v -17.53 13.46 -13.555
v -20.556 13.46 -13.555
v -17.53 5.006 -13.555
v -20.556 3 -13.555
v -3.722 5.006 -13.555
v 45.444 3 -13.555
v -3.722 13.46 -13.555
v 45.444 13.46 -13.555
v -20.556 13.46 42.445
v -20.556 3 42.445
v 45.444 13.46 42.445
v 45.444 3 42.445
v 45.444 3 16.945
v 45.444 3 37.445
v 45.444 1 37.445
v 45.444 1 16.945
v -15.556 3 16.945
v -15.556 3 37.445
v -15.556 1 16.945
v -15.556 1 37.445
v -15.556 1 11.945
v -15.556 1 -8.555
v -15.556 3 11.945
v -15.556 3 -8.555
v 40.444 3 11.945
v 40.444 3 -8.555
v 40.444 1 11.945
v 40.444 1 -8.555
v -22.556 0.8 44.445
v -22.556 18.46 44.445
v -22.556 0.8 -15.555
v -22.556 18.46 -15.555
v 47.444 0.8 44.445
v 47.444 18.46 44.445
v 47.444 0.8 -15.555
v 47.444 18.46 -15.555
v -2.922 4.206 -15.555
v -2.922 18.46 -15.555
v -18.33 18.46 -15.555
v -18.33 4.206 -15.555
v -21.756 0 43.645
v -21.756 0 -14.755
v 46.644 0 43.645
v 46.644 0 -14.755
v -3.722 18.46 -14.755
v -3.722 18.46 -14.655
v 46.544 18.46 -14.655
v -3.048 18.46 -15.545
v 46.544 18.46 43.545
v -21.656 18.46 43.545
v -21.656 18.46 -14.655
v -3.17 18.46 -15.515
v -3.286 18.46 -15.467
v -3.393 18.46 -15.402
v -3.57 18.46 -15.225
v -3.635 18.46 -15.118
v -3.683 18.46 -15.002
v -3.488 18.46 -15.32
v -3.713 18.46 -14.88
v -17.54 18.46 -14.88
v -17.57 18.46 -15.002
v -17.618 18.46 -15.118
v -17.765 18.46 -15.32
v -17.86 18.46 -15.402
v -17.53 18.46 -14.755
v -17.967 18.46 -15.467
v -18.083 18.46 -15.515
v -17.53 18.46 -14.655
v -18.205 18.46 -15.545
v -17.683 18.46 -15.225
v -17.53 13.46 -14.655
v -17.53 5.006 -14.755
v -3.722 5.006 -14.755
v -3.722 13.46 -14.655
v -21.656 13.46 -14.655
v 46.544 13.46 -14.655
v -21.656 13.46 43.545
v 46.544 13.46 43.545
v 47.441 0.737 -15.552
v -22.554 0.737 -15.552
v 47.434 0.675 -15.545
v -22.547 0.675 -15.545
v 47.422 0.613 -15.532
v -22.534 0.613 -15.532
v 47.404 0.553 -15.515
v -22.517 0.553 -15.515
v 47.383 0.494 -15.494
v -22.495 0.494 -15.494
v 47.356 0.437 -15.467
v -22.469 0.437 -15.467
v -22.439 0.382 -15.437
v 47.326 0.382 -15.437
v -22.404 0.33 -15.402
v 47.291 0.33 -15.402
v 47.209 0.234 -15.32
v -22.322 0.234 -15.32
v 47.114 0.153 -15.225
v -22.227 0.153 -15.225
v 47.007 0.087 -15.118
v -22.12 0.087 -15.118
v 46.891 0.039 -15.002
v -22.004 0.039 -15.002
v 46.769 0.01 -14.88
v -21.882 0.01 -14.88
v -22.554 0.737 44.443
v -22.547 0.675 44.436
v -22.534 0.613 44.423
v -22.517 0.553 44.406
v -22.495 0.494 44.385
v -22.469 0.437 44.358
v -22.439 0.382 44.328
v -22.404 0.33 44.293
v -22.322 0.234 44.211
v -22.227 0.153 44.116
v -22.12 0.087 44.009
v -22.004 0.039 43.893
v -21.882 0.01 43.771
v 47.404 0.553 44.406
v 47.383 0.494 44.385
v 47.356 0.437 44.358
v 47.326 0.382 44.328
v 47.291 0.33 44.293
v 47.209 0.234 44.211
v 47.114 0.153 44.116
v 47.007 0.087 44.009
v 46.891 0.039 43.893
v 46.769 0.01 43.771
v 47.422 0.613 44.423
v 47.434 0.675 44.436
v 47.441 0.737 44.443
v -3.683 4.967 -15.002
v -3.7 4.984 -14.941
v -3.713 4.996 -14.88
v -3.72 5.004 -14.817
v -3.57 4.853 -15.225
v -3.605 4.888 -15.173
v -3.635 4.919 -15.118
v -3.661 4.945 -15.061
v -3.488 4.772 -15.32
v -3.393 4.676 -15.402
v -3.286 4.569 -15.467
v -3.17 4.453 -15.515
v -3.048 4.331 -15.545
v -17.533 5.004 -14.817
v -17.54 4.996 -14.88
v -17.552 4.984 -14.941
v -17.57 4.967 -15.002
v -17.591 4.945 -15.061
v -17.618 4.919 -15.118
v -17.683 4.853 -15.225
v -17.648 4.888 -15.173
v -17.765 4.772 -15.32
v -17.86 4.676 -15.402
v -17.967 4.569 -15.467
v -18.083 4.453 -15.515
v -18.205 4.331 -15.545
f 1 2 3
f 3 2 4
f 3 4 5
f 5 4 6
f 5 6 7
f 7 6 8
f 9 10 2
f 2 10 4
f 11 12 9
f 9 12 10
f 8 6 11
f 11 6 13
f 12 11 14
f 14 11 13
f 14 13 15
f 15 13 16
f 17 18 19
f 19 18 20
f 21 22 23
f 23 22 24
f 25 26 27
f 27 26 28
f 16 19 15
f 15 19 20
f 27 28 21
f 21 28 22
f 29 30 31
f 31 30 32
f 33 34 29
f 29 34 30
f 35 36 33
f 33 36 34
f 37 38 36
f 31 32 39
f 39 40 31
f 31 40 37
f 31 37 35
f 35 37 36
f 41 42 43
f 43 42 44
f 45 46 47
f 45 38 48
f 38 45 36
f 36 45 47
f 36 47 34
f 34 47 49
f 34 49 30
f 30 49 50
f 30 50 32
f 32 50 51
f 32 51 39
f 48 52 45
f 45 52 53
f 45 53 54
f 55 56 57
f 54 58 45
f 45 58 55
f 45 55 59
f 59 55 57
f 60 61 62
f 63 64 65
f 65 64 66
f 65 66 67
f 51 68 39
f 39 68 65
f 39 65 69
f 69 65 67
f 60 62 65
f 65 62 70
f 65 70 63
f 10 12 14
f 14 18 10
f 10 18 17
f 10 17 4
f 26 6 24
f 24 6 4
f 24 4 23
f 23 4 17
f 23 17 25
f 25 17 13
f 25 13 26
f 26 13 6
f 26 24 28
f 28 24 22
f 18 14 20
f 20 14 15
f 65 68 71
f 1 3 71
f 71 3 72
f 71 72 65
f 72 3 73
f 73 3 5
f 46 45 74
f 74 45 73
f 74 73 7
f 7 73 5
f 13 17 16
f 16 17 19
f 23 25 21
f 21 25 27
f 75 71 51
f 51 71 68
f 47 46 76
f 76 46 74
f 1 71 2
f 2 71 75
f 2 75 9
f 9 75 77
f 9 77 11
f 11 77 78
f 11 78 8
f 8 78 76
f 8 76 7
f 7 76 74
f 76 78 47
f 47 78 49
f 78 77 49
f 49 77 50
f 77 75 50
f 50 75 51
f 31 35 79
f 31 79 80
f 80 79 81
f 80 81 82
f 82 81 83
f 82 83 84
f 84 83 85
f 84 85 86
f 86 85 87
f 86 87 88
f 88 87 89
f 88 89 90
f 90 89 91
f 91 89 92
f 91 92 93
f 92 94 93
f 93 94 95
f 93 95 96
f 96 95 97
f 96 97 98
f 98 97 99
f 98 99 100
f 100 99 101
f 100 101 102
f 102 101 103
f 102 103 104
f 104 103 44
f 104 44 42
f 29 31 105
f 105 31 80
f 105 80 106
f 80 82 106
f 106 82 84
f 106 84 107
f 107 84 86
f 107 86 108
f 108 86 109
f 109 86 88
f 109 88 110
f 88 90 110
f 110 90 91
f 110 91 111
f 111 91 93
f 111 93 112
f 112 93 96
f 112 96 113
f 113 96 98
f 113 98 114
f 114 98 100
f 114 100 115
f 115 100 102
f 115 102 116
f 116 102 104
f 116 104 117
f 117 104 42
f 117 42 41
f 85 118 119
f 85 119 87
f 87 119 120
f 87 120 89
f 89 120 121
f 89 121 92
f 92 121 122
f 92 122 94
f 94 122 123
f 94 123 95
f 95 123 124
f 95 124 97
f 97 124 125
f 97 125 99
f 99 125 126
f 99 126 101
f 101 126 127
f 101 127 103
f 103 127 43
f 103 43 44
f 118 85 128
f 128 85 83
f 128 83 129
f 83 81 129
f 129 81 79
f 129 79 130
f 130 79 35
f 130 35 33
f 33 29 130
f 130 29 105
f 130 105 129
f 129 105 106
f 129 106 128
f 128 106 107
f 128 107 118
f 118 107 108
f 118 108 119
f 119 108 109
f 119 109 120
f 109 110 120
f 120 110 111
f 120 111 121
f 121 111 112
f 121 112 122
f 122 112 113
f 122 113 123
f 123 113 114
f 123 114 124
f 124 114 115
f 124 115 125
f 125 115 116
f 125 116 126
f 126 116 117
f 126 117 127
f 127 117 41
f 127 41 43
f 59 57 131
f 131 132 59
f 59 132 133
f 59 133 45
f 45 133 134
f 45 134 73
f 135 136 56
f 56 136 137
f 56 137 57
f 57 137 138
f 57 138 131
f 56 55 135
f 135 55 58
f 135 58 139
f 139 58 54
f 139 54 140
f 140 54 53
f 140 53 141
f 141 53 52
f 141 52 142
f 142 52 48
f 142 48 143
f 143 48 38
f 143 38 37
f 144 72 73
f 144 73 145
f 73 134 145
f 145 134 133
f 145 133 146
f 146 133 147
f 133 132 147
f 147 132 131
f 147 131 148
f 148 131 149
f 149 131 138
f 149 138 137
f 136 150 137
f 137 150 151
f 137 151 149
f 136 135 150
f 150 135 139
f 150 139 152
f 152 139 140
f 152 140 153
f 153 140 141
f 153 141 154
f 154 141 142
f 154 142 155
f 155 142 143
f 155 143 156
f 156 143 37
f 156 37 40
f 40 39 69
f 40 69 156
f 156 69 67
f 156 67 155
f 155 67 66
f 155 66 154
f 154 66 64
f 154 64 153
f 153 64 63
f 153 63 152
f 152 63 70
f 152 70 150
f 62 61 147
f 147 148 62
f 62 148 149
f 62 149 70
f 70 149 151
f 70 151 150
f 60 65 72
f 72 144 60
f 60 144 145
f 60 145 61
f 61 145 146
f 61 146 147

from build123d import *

# Parameters (mm, degrees)
SKETCH1_W           = 70
SKETCH1_H           = 60
BOSS_EXTRUDE1_DEPTH = 1
SKETCH2_W           = 70
SKETCH2_H           = 60
SKETCH2_W_2         = 66
SKETCH2_H_2         = 56
BOSS_EXTRUDE2_DEPTH = 17.46
SKETCH3_W           = 66
SKETCH3_H           = 56
SKETCH3_W_2         = 56
SKETCH3_H_2         = 46
BOSS_EXTRUDE4_DEPTH = 2
SKETCH4_W           = 13.208
SKETCH4_H           = 11.6586
CUT_EXTRUDE2_DEPTH  = 10
SKETCH8_W           = 56
SKETCH8_H           = 5
BOSS_EXTRUDE5_DEPTH = 2
SKETCH9_W           = 5
SKETCH9_H           = 20.5
CUT_EXTRUDE3_DEPTH  = 2
SKETCH13_W          = 68.2
SKETCH13_H          = 58.2
SKETCH13_W_2        = 66
SKETCH13_H_2        = 56
CUT_EXTRUDE6_DEPTH  = 5
FILLET1_R           = 0.8
FILLET2_R           = 0.8


with BuildPart() as part:
    # Sketch1 → Boss-Extrude1 (new body)
    with BuildSketch(Plane(origin=(0, 0, 0), x_dir=(1, 0, 0), z_dir=(0, 1, 0))):
        with Locations((12.443609023, -14.445488722)):
            Rectangle(SKETCH1_W, SKETCH1_H)
    extrude(amount=BOSS_EXTRUDE1_DEPTH)

    # Sketch2 → Boss-Extrude2 (add)
    with BuildSketch(Plane(origin=(0, 1, 0), x_dir=(1, 0, 0), z_dir=(0, 1, 0))):
        with Locations((12.443609023, -14.445488722)):
            Rectangle(SKETCH2_W, SKETCH2_H)
        with Locations((12.443609023, -14.445488722)):
            Rectangle(SKETCH2_W_2, SKETCH2_H_2, mode=Mode.SUBTRACT)
    extrude(amount=BOSS_EXTRUDE2_DEPTH)

    # Sketch3 → Boss-Extrude4 (add)
    with BuildSketch(Plane(origin=(0, 1, 0), x_dir=(1, 0, 0), z_dir=(0, 1, 0))):
        with Locations((12.443609023, -14.445488722)):
            Rectangle(SKETCH3_W, SKETCH3_H)
        with Locations((12.443609023, -14.445488722)):
            Rectangle(SKETCH3_W_2, SKETCH3_H_2, mode=Mode.SUBTRACT)
    extrude(amount=BOSS_EXTRUDE4_DEPTH)

    # Sketch4 → Cut-Extrude2 (cut)
    with BuildSketch(Plane(origin=(0, 0, -15.554511278), x_dir=(-1, 0, 0), z_dir=(0, 0, -1))):
        Polygon((3.722393626, 18.464576877), (3.722393626, 6.205976877), (3.722393626, 5.005976877), (17.530393626, 5.005976877), (17.530393626, 6.205976877), (17.530393626, 18.464576877), align=None)
        with Locations((10.626393626, 12.335276877)):
            Rectangle(SKETCH4_W, SKETCH4_H, mode=Mode.SUBTRACT)
    extrude(amount=-CUT_EXTRUDE2_DEPTH, mode=Mode.SUBTRACT)


with BuildPart() as cut_extrude2_kept_piece:
    # of the separate pieces the step leaves, the one the design keeps (cut_extrude2_pieces_kept)
    add(part.part.solids().sort_by_distance((-22.556390977, 0, -15.554511278))[0])

    # Sketch8 → Boss-Extrude5 (add)
    with BuildSketch(Plane(origin=(0, 1, 0), x_dir=(1, 0, 0), z_dir=(0, 1, 0))):
        with Locations((12.443609023, -14.445488722)):
            Rectangle(SKETCH8_W, SKETCH8_H)
    extrude(amount=BOSS_EXTRUDE5_DEPTH)

    # Sketch9 → Cut-Extrude3 (cut)
    with BuildSketch(Plane(origin=(0, 3, 0), x_dir=(1, 0, 0), z_dir=(0, 1, 0))):
        with Locations((42.943609023, -27.195488722)):
            Rectangle(SKETCH9_W, SKETCH9_H)
    extrude(amount=-CUT_EXTRUDE3_DEPTH, mode=Mode.SUBTRACT)

    # Sketch13 → Cut-Extrude6 (cut)
    with BuildSketch(Plane(origin=(0, 18.46, 0), x_dir=(1, 0, 0), z_dir=(0, 1, 0))):
        with Locations((12.443609023, -14.445488722)):
            Rectangle(SKETCH13_W, SKETCH13_H)
        with Locations((12.443609023, -14.445488722)):
            Rectangle(SKETCH13_W_2, SKETCH13_H_2, mode=Mode.SUBTRACT)
    extrude(amount=-CUT_EXTRUDE6_DEPTH, mode=Mode.SUBTRACT)

    # Fillet1
    fillet1_edges = [cut_extrude2_kept_piece.edges().sort_by_distance(p)[0] for p in [
        (12.443609023, 0, 44.445488722),
        (47.443609023, 0, 14.445488722),
        (12.443609023, 0, -15.554511278),
        (-22.556390977, 0, 14.445488722),
    ]]
    fillet(fillet1_edges, radius=FILLET1_R)

    # Fillet2
    fillet2_edges = [cut_extrude2_kept_piece.edges().sort_by_distance(p)[0] for p in [
        (-17.530393626, 11.732988439, -15.554511278),
        (-10.626393626, 5.005976877, -15.554511278),
        (-3.722393626, 11.732988439, -15.554511278),
    ]]
    fillet(fillet2_edges, radius=FILLET2_R)


solid = cut_extrude2_kept_piece.part
